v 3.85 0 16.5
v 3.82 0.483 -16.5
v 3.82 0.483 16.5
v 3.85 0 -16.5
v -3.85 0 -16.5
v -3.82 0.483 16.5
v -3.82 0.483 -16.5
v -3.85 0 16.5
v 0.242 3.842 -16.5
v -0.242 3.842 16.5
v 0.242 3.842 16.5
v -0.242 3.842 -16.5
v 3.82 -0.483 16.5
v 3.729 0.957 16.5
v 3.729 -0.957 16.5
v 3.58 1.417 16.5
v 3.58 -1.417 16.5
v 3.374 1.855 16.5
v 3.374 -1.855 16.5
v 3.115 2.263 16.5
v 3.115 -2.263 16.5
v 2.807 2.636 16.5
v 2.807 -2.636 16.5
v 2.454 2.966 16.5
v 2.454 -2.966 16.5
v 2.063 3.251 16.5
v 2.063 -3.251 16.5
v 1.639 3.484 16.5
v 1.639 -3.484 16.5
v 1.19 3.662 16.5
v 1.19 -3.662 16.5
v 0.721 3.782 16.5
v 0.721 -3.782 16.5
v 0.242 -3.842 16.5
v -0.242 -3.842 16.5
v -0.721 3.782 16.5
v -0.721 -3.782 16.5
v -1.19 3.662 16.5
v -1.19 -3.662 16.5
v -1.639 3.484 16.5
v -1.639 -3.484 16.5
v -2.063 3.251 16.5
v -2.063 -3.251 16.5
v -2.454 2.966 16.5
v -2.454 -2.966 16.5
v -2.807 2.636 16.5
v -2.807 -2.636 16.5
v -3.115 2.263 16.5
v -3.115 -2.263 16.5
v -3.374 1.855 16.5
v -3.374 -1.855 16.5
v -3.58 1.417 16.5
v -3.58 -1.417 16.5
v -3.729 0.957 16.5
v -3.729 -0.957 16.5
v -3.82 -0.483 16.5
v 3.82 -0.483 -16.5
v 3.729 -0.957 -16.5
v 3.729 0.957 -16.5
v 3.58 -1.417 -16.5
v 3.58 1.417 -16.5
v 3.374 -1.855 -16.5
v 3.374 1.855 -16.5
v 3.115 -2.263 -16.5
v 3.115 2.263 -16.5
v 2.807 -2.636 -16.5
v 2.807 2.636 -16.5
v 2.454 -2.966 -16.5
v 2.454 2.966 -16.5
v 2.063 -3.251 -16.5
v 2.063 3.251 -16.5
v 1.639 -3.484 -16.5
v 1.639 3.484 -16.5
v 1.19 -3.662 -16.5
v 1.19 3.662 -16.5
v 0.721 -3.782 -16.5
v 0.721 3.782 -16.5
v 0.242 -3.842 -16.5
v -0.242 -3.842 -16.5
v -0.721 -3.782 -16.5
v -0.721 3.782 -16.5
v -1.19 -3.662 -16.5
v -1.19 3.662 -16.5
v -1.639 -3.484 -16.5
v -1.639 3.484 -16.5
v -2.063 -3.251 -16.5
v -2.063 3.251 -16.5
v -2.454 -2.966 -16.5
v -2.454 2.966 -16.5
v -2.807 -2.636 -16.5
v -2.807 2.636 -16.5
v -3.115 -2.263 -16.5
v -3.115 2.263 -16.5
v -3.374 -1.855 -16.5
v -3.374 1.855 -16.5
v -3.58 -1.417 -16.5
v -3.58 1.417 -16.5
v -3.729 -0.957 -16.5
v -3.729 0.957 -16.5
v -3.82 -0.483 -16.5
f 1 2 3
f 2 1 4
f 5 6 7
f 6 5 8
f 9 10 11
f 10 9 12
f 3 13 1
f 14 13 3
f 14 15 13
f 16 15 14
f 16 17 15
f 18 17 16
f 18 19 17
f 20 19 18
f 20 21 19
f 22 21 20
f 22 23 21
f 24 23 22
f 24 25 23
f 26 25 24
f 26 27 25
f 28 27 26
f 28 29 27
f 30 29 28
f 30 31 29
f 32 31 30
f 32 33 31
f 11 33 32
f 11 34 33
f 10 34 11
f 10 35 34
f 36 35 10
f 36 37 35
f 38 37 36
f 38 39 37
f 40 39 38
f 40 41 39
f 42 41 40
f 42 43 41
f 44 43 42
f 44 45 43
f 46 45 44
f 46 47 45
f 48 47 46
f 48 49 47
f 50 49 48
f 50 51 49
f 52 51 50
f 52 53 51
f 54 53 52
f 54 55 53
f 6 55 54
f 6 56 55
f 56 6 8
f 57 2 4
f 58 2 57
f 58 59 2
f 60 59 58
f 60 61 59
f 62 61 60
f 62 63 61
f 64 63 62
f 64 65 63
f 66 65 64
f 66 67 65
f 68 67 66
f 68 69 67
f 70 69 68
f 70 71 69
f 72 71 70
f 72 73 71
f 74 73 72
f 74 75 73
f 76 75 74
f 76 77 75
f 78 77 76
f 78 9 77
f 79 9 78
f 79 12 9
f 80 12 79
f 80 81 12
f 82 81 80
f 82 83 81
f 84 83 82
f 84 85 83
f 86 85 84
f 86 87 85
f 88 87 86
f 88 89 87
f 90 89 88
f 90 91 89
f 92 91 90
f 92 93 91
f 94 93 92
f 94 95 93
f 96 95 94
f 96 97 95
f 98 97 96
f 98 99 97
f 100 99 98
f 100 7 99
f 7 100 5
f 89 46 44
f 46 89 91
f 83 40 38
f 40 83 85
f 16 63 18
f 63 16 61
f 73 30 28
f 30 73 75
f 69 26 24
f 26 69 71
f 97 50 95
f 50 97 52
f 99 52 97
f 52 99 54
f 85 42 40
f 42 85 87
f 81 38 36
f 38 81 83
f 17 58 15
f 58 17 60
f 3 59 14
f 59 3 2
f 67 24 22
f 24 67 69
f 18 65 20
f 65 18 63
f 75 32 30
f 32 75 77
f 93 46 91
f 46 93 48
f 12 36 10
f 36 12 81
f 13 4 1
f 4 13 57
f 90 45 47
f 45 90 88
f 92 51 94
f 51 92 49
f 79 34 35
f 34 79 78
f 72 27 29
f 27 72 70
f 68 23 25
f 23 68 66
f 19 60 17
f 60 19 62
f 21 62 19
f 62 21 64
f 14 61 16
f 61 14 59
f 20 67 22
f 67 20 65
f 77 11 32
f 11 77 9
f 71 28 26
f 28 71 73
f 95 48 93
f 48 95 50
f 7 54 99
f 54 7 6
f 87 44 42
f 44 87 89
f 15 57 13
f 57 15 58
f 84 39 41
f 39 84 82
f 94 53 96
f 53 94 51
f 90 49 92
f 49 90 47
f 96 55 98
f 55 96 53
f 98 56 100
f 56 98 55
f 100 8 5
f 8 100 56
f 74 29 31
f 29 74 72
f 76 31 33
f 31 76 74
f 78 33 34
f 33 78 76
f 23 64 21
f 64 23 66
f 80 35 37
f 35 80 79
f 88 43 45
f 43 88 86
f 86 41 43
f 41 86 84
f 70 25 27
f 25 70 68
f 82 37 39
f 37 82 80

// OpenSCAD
$fn = 50;


difference() {
	union() {
		translate(v = [0, 0, -16.5000000000]) {
			cylinder(h = 33, r = 3.8500000000);
		}
	}
	union() {
		translate(v = [0, 0, -100.0000000000]) {
			cylinder(h = 200, r = 0);
		}
	}
}
